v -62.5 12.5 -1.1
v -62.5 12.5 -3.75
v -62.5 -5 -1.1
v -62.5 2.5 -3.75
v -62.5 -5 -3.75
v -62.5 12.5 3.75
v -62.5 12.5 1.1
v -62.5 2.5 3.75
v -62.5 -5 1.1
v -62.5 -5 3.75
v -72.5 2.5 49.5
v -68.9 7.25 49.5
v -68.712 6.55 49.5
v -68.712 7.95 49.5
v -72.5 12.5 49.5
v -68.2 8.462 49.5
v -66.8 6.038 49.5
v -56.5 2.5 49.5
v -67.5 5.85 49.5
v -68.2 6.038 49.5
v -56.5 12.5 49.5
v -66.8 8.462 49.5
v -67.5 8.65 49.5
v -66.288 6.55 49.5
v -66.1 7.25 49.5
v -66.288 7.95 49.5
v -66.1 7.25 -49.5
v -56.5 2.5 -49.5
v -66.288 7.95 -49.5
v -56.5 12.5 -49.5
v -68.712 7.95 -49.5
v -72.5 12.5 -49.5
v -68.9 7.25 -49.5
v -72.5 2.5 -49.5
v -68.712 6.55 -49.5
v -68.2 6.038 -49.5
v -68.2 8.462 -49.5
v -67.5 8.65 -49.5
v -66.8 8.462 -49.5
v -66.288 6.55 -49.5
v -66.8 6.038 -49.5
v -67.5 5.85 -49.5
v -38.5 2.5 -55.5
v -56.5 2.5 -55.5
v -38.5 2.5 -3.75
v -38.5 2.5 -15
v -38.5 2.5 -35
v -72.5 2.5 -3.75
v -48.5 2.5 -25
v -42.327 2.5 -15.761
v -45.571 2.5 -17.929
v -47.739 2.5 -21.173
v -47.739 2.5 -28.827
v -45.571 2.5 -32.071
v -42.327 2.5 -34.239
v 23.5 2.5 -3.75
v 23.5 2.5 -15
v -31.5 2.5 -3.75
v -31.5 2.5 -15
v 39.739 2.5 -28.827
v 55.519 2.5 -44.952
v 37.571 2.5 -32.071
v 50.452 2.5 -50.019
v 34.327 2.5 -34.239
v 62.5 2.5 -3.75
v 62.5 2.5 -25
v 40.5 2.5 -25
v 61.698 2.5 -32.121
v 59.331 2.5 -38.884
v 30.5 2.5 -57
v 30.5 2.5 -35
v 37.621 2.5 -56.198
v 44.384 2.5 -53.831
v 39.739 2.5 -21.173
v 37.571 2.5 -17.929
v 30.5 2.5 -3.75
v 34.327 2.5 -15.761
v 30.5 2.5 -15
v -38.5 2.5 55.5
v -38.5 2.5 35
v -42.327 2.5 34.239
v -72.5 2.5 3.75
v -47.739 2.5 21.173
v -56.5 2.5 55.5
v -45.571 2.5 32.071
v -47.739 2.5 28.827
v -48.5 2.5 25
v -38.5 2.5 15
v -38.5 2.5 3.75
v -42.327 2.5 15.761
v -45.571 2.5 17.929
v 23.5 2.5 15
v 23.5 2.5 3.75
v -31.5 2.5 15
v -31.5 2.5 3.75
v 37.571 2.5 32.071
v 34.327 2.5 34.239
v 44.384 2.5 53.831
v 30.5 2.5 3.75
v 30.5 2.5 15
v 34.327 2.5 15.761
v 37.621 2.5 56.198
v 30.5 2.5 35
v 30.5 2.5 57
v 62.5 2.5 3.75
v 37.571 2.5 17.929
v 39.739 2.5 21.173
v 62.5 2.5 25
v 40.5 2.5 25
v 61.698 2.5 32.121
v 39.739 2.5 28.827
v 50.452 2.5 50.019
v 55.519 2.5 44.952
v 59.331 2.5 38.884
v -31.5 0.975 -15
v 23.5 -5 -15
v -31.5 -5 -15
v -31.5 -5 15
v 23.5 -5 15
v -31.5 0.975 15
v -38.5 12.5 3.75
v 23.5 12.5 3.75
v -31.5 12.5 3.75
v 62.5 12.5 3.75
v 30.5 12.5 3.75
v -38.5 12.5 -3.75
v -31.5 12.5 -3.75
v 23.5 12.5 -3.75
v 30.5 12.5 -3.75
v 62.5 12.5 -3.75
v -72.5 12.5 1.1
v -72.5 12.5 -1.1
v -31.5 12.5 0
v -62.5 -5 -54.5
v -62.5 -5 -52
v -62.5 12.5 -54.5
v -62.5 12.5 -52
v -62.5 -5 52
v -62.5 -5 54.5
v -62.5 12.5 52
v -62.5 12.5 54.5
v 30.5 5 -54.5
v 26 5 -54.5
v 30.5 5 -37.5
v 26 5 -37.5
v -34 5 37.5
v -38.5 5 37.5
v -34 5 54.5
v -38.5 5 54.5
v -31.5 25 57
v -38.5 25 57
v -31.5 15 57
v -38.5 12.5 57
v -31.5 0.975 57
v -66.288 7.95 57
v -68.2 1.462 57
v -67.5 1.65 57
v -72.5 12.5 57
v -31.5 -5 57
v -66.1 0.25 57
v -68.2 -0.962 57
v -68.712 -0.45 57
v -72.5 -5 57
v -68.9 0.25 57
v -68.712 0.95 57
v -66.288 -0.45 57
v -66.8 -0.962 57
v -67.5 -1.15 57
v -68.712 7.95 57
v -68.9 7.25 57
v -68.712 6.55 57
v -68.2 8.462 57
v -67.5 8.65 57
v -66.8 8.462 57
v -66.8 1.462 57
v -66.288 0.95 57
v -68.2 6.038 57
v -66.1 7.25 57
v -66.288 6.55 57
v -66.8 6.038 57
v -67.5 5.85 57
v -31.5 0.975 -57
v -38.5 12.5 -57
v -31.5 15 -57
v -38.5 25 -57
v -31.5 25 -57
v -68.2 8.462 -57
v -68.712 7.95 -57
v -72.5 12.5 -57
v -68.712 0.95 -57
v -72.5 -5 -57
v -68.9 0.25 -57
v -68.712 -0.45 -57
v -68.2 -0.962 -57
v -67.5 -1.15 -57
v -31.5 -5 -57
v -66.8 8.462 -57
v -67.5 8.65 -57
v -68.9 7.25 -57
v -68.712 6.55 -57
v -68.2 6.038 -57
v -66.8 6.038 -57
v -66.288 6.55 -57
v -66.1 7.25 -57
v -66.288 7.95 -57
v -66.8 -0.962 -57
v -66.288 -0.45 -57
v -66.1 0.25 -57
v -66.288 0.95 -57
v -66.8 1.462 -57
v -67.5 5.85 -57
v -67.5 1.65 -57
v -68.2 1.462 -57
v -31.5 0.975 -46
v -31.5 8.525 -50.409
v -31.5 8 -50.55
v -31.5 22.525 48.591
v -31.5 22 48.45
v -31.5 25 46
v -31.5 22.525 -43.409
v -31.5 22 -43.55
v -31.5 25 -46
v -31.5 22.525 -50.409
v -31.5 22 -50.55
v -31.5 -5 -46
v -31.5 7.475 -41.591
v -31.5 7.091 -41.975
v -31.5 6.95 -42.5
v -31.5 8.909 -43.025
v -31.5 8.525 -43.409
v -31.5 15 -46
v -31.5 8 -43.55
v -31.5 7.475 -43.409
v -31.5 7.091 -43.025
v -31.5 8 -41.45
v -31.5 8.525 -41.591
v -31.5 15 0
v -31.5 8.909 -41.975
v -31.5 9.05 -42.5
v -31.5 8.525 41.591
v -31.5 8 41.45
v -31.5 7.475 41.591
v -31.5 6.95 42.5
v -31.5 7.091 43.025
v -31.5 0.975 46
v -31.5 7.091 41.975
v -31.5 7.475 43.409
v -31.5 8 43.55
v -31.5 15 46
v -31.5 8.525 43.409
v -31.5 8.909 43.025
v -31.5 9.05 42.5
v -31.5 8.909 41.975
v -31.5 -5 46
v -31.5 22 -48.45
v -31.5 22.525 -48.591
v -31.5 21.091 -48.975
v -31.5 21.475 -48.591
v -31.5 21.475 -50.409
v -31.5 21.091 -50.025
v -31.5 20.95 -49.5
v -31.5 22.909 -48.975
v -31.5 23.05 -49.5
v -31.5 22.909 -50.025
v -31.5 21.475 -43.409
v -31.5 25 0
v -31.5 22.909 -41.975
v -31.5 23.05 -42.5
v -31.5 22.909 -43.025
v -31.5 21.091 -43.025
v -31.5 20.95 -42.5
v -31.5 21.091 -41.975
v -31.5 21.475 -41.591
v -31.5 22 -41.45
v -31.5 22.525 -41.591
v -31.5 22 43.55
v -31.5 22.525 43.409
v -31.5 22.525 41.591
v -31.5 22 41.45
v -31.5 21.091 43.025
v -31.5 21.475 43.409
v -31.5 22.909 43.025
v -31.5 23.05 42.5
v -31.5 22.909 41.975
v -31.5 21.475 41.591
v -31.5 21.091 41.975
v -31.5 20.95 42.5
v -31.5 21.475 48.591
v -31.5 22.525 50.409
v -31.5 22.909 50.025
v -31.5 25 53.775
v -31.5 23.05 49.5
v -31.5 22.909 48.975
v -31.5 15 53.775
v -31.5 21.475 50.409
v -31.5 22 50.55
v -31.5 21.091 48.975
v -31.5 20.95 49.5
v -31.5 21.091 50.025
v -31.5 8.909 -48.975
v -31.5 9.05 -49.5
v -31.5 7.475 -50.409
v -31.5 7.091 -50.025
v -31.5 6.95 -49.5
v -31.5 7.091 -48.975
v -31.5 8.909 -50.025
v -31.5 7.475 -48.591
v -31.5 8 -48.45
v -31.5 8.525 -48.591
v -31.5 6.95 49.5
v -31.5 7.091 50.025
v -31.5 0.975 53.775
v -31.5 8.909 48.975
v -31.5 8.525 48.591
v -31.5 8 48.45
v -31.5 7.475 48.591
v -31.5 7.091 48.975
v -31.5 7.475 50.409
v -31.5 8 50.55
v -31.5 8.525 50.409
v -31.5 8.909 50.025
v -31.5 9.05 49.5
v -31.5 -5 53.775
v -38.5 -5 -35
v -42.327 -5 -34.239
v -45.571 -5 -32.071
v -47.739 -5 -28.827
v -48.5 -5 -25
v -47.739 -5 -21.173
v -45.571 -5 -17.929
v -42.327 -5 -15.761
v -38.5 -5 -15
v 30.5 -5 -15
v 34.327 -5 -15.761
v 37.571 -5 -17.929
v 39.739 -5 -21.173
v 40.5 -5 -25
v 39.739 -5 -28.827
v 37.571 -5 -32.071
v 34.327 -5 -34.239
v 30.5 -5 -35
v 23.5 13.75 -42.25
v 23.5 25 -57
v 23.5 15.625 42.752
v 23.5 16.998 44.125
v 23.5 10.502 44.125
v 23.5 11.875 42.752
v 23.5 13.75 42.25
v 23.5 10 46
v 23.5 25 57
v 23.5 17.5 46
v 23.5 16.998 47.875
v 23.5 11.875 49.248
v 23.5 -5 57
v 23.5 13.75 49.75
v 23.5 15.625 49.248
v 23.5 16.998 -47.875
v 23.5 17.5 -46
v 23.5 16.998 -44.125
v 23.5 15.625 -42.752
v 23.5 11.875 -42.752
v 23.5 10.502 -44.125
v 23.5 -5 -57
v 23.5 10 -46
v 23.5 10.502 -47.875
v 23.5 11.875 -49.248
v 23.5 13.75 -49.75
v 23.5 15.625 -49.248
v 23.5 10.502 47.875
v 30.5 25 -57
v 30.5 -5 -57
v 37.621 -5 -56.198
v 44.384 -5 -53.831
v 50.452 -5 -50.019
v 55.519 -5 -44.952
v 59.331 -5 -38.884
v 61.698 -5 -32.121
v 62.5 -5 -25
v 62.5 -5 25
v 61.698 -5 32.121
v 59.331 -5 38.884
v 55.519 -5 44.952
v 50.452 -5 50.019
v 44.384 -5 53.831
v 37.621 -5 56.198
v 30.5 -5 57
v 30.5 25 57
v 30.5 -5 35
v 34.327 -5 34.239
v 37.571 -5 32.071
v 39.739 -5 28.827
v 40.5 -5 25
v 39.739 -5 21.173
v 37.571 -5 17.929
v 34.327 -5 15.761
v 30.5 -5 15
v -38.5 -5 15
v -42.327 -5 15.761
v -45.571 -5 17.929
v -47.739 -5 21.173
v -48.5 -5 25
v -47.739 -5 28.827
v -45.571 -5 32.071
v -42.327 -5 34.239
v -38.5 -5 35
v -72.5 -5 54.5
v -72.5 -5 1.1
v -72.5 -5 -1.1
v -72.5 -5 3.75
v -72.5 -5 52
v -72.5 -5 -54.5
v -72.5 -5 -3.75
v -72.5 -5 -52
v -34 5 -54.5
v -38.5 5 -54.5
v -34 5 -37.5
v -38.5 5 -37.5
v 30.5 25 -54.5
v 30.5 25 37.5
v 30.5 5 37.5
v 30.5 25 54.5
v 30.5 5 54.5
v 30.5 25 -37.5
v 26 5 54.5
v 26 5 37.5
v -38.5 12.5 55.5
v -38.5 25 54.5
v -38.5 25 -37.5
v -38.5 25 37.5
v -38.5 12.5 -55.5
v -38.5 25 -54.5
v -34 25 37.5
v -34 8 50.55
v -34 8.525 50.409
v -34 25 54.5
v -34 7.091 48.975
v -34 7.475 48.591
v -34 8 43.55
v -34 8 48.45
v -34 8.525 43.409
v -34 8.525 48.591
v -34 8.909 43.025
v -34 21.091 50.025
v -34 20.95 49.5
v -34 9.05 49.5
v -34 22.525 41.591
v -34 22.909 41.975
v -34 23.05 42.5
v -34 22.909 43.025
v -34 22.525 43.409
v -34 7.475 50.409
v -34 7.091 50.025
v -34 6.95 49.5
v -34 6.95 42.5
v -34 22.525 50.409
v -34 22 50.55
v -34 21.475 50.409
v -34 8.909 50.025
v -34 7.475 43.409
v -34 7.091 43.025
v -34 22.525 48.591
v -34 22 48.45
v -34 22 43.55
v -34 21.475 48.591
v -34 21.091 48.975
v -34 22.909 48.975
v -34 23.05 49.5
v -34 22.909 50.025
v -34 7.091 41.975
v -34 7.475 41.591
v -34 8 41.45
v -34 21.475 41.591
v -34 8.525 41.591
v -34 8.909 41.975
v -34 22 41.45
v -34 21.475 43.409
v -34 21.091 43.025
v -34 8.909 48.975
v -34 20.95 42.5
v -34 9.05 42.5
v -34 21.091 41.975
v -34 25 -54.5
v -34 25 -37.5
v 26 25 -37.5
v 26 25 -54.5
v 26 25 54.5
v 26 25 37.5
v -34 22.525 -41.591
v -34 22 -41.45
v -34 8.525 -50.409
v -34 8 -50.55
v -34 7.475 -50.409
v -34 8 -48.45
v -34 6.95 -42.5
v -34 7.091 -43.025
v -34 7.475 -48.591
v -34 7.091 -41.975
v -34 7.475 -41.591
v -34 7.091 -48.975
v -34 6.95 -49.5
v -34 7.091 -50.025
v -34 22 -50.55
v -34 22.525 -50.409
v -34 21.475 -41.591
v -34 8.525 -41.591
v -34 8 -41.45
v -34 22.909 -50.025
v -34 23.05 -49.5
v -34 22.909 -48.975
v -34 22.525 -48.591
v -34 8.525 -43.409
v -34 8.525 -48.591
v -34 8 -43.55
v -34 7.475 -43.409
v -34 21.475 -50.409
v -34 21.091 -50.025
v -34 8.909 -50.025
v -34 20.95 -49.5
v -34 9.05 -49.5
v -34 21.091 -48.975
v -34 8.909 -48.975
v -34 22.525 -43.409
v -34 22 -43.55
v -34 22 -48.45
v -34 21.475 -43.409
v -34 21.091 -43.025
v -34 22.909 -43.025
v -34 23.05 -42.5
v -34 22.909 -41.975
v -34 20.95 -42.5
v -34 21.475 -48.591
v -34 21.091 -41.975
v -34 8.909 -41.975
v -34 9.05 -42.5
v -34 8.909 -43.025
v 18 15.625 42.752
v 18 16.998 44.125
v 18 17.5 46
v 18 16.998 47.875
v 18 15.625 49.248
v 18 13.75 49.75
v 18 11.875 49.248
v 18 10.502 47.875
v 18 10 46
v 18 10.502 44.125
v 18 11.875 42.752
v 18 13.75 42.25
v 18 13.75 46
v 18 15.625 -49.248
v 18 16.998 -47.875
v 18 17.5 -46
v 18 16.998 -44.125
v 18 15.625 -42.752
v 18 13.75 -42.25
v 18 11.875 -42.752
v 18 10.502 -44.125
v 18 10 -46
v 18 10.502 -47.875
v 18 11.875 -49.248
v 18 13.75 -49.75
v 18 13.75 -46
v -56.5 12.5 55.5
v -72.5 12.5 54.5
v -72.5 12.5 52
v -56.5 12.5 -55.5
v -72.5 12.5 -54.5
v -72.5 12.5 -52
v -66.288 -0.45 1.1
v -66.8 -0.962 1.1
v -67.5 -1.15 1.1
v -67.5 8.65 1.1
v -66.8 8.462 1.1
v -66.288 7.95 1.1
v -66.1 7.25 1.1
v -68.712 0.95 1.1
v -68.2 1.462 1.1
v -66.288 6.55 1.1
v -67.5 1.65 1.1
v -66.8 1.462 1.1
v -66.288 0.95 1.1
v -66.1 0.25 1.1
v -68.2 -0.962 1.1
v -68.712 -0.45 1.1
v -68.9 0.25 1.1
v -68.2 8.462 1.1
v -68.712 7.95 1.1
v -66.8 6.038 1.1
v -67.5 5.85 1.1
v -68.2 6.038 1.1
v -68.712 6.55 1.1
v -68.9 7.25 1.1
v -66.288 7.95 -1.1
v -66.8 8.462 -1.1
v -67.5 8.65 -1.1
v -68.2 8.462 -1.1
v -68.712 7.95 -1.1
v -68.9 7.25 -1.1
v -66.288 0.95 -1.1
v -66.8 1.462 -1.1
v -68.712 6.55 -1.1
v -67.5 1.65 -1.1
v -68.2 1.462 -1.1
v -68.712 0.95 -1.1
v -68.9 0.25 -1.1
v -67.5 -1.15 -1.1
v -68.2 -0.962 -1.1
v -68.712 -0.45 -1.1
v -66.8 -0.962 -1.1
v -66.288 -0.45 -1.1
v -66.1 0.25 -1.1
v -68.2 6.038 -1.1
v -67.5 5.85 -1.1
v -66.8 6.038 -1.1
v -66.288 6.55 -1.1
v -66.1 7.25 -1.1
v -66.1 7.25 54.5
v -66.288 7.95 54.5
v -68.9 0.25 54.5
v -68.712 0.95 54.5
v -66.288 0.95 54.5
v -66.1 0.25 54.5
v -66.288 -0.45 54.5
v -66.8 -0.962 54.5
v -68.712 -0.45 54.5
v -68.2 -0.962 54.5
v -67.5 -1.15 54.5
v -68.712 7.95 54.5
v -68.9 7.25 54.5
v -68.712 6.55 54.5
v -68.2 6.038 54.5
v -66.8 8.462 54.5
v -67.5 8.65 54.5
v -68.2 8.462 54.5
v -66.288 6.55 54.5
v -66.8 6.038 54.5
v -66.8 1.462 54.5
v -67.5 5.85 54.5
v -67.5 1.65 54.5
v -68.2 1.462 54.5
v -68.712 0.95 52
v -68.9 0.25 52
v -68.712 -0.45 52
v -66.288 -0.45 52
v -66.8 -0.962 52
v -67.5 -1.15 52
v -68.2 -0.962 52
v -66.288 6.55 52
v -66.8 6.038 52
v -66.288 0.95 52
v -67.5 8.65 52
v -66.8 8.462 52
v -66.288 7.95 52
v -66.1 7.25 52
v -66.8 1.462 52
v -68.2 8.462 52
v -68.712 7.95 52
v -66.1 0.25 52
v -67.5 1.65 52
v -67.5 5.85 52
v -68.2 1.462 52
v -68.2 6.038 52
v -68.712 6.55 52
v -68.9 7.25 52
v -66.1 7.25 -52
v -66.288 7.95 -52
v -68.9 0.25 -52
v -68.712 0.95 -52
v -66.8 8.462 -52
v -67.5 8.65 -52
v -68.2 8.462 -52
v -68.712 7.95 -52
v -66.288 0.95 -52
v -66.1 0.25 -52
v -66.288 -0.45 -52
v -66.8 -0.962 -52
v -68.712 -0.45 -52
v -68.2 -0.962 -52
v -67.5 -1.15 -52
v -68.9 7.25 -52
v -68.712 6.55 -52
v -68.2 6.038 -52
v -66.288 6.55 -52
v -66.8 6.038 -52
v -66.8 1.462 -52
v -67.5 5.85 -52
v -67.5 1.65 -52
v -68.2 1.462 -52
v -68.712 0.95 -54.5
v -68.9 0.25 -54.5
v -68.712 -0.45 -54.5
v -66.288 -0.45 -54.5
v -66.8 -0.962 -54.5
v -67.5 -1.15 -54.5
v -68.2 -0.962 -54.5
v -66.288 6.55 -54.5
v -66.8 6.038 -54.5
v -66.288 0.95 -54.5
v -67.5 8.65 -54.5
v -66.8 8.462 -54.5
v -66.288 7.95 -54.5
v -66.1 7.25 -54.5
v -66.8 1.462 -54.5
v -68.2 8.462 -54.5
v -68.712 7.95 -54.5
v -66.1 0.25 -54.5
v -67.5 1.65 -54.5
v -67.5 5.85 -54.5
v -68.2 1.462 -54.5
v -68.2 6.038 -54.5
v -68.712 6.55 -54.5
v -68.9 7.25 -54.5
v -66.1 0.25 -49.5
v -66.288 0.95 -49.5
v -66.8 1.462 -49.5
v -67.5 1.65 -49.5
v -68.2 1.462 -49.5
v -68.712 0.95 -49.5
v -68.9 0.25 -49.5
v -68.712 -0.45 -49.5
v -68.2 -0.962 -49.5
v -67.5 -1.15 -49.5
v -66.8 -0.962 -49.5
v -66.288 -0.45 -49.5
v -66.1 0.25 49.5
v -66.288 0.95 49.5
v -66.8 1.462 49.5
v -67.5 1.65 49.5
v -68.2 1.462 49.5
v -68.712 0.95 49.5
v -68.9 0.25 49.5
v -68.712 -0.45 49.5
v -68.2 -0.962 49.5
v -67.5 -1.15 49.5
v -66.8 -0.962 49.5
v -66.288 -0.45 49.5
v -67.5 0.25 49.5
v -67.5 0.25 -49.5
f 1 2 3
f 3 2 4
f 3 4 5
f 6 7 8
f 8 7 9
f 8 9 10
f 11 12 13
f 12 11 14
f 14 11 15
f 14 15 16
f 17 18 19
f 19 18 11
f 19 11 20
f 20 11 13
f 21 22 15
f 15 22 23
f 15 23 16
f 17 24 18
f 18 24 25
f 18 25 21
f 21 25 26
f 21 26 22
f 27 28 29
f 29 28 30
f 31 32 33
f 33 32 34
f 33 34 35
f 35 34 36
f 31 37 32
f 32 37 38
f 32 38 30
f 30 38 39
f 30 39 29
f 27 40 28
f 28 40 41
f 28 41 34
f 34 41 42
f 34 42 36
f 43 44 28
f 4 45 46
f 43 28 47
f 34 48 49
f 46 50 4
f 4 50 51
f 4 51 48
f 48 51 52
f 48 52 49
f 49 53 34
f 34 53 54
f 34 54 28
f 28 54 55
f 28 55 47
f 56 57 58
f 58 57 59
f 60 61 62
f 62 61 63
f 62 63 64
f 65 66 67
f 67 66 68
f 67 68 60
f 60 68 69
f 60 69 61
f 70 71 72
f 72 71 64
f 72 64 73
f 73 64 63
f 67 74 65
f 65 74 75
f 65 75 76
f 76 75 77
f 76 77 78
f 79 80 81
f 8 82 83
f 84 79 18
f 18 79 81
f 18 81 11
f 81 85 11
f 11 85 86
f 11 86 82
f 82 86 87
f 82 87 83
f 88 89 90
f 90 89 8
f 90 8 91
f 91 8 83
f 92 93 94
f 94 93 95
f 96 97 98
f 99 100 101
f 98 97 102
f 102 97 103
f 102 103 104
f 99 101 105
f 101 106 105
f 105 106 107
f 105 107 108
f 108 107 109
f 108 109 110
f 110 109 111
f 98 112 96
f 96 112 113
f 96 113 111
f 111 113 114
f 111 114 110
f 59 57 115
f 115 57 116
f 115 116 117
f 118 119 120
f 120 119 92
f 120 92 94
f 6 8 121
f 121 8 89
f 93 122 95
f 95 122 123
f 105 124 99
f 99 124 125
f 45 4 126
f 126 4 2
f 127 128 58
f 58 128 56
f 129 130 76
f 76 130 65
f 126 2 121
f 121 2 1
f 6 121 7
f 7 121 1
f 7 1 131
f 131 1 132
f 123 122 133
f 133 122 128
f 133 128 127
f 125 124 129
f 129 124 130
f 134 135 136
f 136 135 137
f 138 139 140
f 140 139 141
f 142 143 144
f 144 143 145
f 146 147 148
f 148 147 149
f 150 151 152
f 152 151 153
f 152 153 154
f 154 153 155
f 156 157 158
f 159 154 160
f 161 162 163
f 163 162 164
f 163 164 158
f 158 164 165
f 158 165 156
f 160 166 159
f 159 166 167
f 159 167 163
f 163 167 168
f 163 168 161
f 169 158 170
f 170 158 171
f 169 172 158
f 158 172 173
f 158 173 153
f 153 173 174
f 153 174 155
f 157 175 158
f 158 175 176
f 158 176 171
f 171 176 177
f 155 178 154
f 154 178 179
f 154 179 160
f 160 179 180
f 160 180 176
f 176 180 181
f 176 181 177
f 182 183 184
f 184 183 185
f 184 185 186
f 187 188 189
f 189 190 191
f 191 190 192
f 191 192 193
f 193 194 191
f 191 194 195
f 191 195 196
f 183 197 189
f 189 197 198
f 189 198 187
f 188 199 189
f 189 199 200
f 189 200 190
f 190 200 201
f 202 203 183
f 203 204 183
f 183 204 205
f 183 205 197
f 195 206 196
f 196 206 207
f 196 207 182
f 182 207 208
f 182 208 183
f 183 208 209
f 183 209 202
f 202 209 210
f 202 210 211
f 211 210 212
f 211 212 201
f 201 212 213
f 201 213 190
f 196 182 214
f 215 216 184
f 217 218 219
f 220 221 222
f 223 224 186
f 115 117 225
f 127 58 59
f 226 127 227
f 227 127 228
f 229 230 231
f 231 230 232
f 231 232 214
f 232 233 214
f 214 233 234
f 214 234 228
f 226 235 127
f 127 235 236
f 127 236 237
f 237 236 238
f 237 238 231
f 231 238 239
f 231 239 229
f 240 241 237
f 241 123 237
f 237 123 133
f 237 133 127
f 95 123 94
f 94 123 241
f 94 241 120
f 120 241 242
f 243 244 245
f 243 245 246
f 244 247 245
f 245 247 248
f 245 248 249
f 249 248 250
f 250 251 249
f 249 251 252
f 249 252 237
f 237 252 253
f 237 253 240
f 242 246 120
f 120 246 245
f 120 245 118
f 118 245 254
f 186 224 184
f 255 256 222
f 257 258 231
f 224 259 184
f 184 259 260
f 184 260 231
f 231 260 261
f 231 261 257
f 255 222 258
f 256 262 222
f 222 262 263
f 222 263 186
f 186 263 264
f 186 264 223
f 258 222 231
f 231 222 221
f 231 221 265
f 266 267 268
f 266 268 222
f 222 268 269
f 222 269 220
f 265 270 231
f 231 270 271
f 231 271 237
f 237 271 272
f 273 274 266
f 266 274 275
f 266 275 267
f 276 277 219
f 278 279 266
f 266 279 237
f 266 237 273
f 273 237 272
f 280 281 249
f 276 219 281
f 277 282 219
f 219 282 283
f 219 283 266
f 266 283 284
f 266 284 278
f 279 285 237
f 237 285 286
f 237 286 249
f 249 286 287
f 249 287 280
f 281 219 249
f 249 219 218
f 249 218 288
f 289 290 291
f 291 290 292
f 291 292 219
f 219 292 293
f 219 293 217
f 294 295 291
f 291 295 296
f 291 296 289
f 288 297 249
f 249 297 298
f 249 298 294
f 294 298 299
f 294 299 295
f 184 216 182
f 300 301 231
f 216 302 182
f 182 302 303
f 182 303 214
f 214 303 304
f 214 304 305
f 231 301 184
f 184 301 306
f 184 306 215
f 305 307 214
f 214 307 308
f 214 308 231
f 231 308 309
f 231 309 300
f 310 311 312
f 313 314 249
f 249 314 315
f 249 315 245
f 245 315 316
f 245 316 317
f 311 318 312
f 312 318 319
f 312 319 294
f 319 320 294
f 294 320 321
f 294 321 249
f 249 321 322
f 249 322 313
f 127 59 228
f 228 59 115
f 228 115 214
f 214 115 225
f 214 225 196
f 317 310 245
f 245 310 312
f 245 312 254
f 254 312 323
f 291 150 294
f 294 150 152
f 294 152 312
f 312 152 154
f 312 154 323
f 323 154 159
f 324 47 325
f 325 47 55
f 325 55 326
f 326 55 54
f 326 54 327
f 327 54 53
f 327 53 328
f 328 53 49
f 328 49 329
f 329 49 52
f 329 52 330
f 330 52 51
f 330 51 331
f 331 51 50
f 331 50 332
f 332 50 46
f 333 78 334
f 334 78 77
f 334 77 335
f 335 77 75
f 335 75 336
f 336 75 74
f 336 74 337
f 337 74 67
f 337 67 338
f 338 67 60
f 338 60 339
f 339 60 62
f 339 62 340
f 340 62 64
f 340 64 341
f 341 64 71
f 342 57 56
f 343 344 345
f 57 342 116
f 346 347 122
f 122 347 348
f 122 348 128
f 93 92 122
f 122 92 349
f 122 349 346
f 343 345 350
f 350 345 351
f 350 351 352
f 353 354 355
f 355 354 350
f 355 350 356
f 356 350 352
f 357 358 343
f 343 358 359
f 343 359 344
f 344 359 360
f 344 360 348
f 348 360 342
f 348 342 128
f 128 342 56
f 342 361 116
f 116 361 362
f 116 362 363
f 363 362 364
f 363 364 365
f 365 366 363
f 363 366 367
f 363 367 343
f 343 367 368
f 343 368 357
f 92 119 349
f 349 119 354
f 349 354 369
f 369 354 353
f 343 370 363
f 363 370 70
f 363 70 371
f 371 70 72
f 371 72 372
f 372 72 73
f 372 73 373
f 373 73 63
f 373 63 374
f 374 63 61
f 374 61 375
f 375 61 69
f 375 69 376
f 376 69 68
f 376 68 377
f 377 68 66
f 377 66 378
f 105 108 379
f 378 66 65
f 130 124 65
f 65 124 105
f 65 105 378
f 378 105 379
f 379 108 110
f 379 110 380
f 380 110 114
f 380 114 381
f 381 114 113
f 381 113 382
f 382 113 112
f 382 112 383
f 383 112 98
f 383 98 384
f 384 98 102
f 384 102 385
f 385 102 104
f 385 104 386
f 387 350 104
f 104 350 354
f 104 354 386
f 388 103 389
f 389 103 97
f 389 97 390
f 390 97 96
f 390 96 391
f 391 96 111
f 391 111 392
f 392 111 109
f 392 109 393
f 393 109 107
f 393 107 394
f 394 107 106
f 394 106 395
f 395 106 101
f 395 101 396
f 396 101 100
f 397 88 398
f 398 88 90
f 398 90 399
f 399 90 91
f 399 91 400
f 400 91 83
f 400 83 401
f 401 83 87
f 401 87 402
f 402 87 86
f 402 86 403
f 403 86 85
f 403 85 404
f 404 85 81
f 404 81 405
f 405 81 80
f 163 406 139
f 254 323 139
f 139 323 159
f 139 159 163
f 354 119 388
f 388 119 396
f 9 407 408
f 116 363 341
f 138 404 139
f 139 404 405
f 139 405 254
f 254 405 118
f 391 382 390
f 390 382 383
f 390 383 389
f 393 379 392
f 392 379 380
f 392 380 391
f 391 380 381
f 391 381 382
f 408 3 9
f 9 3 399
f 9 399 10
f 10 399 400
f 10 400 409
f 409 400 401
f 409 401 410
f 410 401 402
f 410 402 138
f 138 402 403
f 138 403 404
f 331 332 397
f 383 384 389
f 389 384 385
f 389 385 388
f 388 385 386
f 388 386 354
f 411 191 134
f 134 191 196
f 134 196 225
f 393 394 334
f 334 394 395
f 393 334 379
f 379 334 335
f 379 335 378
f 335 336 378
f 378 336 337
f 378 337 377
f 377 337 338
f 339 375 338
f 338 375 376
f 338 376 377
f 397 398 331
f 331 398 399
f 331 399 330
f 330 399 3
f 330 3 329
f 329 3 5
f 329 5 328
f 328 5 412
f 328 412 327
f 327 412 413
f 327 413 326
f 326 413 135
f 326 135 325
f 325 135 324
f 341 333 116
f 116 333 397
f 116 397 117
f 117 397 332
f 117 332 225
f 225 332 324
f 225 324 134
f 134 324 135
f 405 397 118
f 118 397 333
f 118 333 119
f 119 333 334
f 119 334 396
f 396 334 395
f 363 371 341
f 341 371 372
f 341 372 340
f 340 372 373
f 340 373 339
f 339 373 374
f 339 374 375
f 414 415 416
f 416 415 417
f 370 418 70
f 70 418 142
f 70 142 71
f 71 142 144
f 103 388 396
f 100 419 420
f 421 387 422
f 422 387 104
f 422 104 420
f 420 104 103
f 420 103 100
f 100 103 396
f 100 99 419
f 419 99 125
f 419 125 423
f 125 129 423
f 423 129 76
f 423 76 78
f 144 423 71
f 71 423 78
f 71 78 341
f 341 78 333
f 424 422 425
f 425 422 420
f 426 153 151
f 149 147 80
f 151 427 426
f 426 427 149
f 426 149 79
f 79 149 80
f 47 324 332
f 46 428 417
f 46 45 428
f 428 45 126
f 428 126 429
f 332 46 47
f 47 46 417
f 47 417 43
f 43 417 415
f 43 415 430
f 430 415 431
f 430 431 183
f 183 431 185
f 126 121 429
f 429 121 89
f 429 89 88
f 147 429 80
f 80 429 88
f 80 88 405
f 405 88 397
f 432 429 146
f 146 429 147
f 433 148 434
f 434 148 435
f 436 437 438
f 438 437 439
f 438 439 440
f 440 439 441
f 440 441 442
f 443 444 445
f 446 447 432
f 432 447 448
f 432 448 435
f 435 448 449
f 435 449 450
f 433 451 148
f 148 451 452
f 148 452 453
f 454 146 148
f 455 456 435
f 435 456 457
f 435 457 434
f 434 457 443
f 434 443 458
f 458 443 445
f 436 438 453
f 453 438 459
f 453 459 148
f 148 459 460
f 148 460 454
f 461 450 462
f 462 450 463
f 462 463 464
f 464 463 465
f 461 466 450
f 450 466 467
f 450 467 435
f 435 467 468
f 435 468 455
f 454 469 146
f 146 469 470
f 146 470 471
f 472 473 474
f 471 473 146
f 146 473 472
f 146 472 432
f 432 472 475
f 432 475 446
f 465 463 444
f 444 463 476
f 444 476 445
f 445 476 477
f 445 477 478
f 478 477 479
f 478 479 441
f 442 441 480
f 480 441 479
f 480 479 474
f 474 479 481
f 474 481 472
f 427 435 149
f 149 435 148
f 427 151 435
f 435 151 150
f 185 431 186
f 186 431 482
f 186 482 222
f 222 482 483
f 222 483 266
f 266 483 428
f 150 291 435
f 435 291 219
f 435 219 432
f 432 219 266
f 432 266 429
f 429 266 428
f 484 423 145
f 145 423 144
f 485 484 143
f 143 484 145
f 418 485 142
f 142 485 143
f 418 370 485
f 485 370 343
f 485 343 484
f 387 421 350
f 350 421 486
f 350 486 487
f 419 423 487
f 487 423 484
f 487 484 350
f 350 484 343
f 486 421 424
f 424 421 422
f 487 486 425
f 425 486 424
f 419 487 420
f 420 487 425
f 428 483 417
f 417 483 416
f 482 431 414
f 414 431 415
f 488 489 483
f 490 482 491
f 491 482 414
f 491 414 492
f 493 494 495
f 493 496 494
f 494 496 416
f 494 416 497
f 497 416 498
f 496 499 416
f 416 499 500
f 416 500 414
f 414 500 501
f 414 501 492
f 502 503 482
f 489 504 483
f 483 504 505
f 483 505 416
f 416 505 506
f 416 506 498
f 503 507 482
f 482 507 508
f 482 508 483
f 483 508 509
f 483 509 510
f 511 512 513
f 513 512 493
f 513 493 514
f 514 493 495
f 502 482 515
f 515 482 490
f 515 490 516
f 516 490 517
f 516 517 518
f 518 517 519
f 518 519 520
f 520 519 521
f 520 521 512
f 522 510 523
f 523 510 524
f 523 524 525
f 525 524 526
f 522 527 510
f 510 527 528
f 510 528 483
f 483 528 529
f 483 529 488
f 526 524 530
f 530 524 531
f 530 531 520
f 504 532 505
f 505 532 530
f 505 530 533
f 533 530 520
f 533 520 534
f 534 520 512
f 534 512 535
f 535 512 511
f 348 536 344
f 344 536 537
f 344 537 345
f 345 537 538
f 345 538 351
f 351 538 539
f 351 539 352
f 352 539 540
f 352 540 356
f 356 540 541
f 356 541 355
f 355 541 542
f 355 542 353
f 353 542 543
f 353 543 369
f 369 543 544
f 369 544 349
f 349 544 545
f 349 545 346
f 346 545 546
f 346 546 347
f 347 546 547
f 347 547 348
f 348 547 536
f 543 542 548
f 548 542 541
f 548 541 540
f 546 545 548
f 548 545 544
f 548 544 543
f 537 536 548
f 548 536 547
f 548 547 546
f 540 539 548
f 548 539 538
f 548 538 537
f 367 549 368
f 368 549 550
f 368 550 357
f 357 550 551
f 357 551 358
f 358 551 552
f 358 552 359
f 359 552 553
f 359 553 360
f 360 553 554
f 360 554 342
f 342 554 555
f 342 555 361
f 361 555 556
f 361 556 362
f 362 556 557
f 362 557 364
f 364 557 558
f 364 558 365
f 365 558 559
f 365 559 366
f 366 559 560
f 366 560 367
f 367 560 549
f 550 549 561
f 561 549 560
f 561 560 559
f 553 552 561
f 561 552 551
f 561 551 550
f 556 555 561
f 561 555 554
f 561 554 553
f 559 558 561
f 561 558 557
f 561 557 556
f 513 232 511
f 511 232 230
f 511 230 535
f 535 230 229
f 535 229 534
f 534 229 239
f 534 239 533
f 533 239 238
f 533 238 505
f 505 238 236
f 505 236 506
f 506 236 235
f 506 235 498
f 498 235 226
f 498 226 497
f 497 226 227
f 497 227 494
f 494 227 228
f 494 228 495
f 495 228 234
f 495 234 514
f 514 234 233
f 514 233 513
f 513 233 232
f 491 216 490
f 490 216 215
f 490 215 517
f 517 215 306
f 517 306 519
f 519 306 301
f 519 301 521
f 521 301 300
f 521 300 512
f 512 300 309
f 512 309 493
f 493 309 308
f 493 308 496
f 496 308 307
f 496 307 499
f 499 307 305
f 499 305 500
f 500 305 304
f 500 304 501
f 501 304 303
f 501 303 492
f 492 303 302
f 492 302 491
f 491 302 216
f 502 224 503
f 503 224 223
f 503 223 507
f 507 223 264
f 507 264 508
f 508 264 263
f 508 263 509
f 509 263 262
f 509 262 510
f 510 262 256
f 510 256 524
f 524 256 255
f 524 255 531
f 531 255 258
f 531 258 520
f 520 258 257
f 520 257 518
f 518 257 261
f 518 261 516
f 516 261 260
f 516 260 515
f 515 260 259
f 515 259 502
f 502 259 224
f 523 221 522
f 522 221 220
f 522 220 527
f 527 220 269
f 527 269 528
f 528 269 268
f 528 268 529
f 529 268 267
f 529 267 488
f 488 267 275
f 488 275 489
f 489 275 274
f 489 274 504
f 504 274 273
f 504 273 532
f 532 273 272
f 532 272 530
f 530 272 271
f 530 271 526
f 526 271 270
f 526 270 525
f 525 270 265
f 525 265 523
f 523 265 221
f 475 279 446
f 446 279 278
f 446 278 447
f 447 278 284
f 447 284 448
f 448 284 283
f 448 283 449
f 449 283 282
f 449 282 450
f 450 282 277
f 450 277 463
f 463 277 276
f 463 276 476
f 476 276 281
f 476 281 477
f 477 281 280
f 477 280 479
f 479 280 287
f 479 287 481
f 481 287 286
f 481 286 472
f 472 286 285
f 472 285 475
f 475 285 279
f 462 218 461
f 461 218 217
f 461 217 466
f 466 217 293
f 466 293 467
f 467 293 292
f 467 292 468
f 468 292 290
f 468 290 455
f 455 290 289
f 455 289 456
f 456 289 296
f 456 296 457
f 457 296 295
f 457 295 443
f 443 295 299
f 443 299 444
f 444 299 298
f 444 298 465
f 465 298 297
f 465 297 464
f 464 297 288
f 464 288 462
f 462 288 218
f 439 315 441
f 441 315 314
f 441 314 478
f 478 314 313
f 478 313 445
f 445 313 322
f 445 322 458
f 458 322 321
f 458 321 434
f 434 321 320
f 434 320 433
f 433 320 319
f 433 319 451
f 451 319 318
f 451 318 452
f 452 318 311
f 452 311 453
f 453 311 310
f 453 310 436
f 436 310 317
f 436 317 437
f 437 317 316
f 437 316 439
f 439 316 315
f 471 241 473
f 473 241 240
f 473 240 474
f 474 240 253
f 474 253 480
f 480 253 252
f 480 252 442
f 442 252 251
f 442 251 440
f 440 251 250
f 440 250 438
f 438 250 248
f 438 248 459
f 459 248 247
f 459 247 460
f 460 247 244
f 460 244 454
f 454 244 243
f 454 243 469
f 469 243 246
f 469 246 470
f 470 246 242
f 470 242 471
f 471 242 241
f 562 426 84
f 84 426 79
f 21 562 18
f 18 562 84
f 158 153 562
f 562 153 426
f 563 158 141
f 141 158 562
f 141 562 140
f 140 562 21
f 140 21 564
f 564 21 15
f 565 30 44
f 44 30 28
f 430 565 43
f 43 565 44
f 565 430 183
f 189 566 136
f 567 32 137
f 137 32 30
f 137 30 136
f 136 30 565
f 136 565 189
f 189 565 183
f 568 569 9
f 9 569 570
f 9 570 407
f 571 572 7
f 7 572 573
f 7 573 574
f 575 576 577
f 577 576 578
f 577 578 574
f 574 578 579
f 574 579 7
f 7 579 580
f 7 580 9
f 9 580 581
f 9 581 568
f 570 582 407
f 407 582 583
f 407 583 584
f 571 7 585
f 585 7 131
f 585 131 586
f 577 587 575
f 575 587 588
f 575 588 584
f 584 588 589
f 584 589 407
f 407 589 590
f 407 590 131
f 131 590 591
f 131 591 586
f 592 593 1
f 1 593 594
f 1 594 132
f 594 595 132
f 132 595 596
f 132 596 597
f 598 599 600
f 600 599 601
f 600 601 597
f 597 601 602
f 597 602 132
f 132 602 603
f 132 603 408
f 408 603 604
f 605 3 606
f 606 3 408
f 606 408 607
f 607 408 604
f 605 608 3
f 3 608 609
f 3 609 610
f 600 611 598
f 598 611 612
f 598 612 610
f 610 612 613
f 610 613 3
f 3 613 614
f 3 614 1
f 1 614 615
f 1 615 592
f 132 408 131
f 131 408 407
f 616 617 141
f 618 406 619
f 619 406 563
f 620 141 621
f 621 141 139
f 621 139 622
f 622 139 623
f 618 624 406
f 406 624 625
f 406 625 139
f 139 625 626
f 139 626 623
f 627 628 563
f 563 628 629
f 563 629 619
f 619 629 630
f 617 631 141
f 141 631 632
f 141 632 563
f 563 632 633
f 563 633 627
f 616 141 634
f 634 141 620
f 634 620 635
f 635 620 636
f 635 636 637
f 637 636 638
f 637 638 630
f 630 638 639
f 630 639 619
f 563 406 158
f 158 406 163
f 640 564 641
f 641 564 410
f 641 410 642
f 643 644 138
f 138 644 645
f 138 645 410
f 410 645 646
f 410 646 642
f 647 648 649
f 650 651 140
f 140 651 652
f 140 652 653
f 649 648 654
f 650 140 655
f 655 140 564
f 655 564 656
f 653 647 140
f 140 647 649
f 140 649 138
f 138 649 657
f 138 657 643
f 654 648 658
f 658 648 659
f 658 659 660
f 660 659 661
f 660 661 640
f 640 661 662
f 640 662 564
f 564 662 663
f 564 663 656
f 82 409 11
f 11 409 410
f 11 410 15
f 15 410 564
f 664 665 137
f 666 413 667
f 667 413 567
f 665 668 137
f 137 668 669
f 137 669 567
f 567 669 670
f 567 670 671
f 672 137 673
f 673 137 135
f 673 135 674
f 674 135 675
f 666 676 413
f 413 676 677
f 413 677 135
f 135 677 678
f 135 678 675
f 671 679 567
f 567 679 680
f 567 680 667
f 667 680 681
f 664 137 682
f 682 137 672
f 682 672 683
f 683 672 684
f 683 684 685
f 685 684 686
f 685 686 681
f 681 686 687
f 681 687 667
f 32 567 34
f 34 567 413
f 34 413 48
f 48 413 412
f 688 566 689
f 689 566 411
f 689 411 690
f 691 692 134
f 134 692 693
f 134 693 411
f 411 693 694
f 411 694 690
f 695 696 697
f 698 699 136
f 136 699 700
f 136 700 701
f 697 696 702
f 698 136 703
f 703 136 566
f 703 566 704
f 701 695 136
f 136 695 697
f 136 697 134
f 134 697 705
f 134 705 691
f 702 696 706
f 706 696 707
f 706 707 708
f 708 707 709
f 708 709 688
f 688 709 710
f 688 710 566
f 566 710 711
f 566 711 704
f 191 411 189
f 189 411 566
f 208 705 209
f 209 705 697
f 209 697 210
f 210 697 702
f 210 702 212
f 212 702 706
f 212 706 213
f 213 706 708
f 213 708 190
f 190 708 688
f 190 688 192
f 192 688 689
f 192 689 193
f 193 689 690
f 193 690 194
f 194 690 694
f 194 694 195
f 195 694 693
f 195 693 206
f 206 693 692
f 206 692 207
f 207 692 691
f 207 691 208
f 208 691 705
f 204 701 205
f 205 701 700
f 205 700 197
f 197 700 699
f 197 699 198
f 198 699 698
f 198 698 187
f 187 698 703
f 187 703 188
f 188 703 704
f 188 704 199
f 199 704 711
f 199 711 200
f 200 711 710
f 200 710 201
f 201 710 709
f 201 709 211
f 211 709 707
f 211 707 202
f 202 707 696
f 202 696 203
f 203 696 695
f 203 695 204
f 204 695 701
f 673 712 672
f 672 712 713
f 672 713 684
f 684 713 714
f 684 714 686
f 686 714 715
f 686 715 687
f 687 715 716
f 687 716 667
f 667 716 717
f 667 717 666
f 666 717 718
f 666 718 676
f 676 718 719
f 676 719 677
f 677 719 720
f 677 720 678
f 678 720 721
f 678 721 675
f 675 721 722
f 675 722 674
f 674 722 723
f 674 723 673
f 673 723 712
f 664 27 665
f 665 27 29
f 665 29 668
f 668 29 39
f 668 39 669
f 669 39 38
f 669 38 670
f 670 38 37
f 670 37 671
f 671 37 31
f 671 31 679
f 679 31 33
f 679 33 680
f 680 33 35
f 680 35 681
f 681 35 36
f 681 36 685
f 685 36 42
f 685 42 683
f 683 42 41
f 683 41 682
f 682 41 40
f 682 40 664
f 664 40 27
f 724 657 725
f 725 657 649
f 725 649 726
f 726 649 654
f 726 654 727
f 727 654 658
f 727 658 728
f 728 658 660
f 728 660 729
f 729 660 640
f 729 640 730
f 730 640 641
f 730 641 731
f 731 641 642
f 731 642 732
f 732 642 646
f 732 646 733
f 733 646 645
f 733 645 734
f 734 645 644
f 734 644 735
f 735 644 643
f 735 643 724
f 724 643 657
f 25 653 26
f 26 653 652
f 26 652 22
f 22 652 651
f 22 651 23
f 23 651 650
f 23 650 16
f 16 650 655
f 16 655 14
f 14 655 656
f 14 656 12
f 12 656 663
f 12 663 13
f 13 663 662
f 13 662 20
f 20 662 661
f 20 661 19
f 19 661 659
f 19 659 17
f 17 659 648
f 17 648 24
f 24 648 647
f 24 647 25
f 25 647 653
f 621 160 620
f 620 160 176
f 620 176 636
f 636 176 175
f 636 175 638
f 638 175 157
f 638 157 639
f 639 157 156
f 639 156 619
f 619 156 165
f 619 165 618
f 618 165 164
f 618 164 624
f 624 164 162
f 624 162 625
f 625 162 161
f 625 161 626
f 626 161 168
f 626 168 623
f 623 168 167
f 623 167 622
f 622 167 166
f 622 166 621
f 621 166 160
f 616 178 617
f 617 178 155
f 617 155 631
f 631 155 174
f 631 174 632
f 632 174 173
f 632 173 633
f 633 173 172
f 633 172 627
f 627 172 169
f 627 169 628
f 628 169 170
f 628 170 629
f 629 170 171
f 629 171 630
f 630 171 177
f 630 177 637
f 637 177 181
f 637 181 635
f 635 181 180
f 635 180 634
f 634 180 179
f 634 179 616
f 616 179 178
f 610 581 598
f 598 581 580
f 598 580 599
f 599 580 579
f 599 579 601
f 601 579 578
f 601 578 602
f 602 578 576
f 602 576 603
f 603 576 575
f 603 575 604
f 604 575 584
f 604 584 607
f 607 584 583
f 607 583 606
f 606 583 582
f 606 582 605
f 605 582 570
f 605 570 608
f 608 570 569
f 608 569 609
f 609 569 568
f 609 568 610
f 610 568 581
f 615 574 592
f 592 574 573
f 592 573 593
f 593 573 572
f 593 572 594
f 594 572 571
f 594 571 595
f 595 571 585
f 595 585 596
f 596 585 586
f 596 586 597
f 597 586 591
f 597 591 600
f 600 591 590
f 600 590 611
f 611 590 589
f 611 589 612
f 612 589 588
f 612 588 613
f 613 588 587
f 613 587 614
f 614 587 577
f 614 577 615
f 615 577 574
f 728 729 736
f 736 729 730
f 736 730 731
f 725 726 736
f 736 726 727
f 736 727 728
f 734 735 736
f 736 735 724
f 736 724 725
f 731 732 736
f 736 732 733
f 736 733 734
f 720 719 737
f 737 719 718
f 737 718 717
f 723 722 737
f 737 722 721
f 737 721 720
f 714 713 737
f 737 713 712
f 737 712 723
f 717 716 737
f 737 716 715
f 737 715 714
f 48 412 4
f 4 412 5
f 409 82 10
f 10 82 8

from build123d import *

# Parameters (mm, degrees)
BOSS_EXTRUDE1_DEPTH      = 2.5
BOSS_EXTRUDE1_DEPTH_BACK = 5
SKETCH3_W                = 7
SKETCH3_H                = 22
BOSS_EXTRUDE4_DEPTH      = 2.5
BOSS_EXTRUDE5_DEPTH      = 20
SKETCH7_R                = 3.75
BOSS_EXTRUDE6_DEPTH      = 5.5
SKETCH10_R               = 1.05
CUT_EXTRUDE1_DEPTH       = 2.5
SKETCH14_W               = 125
SKETCH14_H               = 7.5
SKETCH14_W_2             = 18
SKETCH14_H_2             = 1.5
BOSS_EXTRUDE8_DEPTH      = 10
SKETCH15_W               = 2.2
SKETCH15_H               = 17.5
SKETCH15_W_2             = 2.5
BOSS_EXTRUDE9_DEPTH      = 10
SKETCH16_R               = 1.4
CUT_EXTRUDE3_DEPTH       = 114
SKETCH17_W               = 7
SKETCH17_H               = 30
BOSS_EXTRUDE10_DEPTH     = 70
SKETCH18_W               = 45.75
SKETCH18_H               = 7.5
BOSS_EXTRUDE11_DEPTH     = 10


with BuildPart() as part:
    # Sketch2 → Boss-Extrude1 (new, two sides: drawn at the far end of the back side and taken through both)
    with BuildSketch(Plane(origin=(0, 0, 0), x_dir=(1, 0, 0), z_dir=(0, 1, 0)).offset(-BOSS_EXTRUDE1_DEPTH_BACK)):
        with BuildLine():
            Line((62.5, 25), (62.5, -25))
            ThreePointArc((62.5, -25), (53.127416998, -47.627416998), (30.5, -57))
            Line((30.5, -57), (23.5, -57))
            Line((23.5, -57), (23.5, -35))
            Line((23.5, -35), (30.5, -35))
            ThreePointArc((30.5, -35), (40.5, -25), (30.5, -15))
            Line((30.5, -15), (-38.5, -15))
            ThreePointArc((-38.5, -15), (-48.5, -25), (-38.5, -35))
            Line((-38.5, -35), (-31.5, -35))
            Line((-31.5, -35), (-31.5, -57))
            Line((-31.5, -57), (-38.5, -57))
            Line((-38.5, -57), (-62.5, -57))
            Line((-62.5, -57), (-62.5, 57))
            Line((-62.5, 57), (-38.5, 57))
            Line((-38.5, 57), (-31.5, 57))
            Line((-31.5, 57), (-31.5, 35))
            Line((-31.5, 35), (-38.5, 35))
            ThreePointArc((-38.5, 35), (-48.5, 25), (-38.5, 15))
            Line((-38.5, 15), (30.5, 15))
            ThreePointArc((30.5, 15), (40.5, 25), (30.5, 35))
            Line((30.5, 35), (23.5, 35))
            Line((23.5, 35), (23.5, 57))
            Line((23.5, 57), (30.5, 57))
            ThreePointArc((30.5, 57), (53.127416998, 47.627416998), (62.5, 25))
        make_face()
    extrude(amount=BOSS_EXTRUDE1_DEPTH + BOSS_EXTRUDE1_DEPTH_BACK)

    # Sketch3 → Boss-Extrude4 (add)
    with BuildSketch(Plane(origin=(0, 2.5, 0), x_dir=(1, 0, 0), z_dir=(0, 1, 0))):
        with Locations((-35, -46)):
            Rectangle(SKETCH3_W, SKETCH3_H)
        with Locations((27, -46)):
            Rectangle(SKETCH3_W, SKETCH3_H)
        with Locations((27, 46)):
            Rectangle(SKETCH3_W, SKETCH3_H)
        with Locations((-35, 46)):
            Rectangle(SKETCH3_W, SKETCH3_H)
    extrude(amount=BOSS_EXTRUDE4_DEPTH)

    # Sketch6 → Boss-Extrude5 (add)
    with BuildSketch(Plane(origin=(0, 5, 0), x_dir=(1, 0, 0), z_dir=(0, 1, 0))):
        Polygon((-38.5, -35), (-31.5, -35), (-31.5, -57), (-38.5, -57), (-38.5, -54.5), (-34, -54.5), (-34, -37.5), (-38.5, -37.5), align=None)
        Polygon((30.5, -35), (23.5, -35), (23.5, -57), (30.5, -57), (30.5, -54.5), (26, -54.5), (26, -37.5), (30.5, -37.5), align=None)
        Polygon((30.5, 37.5), (30.5, 35), (23.5, 35), (23.5, 57), (30.5, 57), (30.5, 54.5), (26, 54.5), (26, 37.5), align=None)
        Polygon((-38.5, 37.5), (-38.5, 35), (-31.5, 35), (-31.5, 57), (-38.5, 57), (-38.5, 54.5), (-34, 54.5), (-34, 37.5), align=None)
    extrude(amount=BOSS_EXTRUDE5_DEPTH)

    # Sketch7 → Boss-Extrude6 (add)
    with BuildSketch(Plane.ZY.offset(-23.5)):
        with Locations((46, 13.75)):
            Circle(SKETCH7_R)
        with Locations(Location((-46, 13.75, 0), (0, 0, 180))):
            Circle(SKETCH7_R)
    extrude(amount=BOSS_EXTRUDE6_DEPTH)

    # Sketch10 → Cut-Extrude1 (cut)
    with BuildSketch(Plane(origin=(-31.5, 0, 0), x_dir=(0, 0, -1), z_dir=(1, 0, 0))):
        with Locations((-42.5, 22)):
            Circle(SKETCH10_R)
        with Locations(Location((-49.5, 22, 0), (0, 0, 180))):
            Circle(SKETCH10_R)
        with Locations((-49.5, 8)):
            Circle(SKETCH10_R)
        with Locations(Location((-42.5, 8, 0), (0, 0, 180))):
            Circle(SKETCH10_R)
        with Locations((42.5, 8)):
            Circle(SKETCH10_R)
        with Locations(Location((49.5, 8, 0), (0, 0, 180))):
            Circle(SKETCH10_R)
        with Locations((49.5, 22)):
            Circle(SKETCH10_R)
        with Locations(Location((42.5, 22, 0), (0, 0, 180))):
            Circle(SKETCH10_R)
    extrude(amount=-CUT_EXTRUDE1_DEPTH, mode=Mode.SUBTRACT)

    # Sketch14 → Boss-Extrude8 (add)
    with BuildSketch(Plane(origin=(0, 2.5, 0), x_dir=(1, 0, 0), z_dir=(0, 1, 0))):
        Rectangle(SKETCH14_W, SKETCH14_H)
        Polygon((-56.5, -49.5), (-62.5, -49.5), (-62.5, -57), (-56.5, -57), (-56.5, -55.5), align=None)
        with Locations((-47.5, -56.25)):
            Rectangle(SKETCH14_W_2, SKETCH14_H_2)
        Polygon((-62.5, 57), (-62.5, 49.5), (-56.5, 49.5), (-56.5, 55.5), (-56.5, 57), align=None)
        with Locations((-47.5, 56.25)):
            Rectangle(SKETCH14_W_2, SKETCH14_H_2)
    extrude(amount=BOSS_EXTRUDE8_DEPTH)

    # Sketch15 → Boss-Extrude9 (add)
    with BuildSketch(Plane.ZY.offset(62.5)):
        with Locations((0, 3.75)):
            Rectangle(SKETCH15_W, SKETCH15_H)
        with Locations((55.75, 3.75)):
            Rectangle(SKETCH15_W_2, SKETCH15_H)
        with Locations((50.75, 3.75)):
            Rectangle(SKETCH15_W_2, SKETCH15_H)
        with Locations((-50.75, 3.75)):
            Rectangle(SKETCH15_W_2, SKETCH15_H)
        with Locations((-55.75, 3.75)):
            Rectangle(SKETCH15_W_2, SKETCH15_H)
    extrude(amount=BOSS_EXTRUDE9_DEPTH)

    # Sketch16 → Cut-Extrude3 (cut)
    with BuildSketch(Plane.XY.offset(57)):
        with Locations((-67.5, 7.25)):
            Circle(SKETCH16_R)
        with Locations((-67.5, 0.25)):
            Circle(SKETCH16_R)
    extrude(amount=-CUT_EXTRUDE3_DEPTH, mode=Mode.SUBTRACT)

    # Sketch17 → Boss-Extrude10 (add)
    with BuildSketch(Plane.XY.offset(-35)):
        with Locations((-35, 10)):
            Rectangle(SKETCH17_W, SKETCH17_H)
        with Locations((27, 10)):
            Rectangle(SKETCH17_W, SKETCH17_H)
    extrude(amount=BOSS_EXTRUDE10_DEPTH)

    # Sketch18 → Boss-Extrude11 (add)
    with BuildSketch(Plane.ZY.offset(62.5)):
        with Locations((-26.625, -1.25)):
            Rectangle(SKETCH18_W, SKETCH18_H)
        with Locations((26.625, -1.25)):
            Rectangle(SKETCH18_W, SKETCH18_H)
    extrude(amount=BOSS_EXTRUDE11_DEPTH)


solid = part.part
